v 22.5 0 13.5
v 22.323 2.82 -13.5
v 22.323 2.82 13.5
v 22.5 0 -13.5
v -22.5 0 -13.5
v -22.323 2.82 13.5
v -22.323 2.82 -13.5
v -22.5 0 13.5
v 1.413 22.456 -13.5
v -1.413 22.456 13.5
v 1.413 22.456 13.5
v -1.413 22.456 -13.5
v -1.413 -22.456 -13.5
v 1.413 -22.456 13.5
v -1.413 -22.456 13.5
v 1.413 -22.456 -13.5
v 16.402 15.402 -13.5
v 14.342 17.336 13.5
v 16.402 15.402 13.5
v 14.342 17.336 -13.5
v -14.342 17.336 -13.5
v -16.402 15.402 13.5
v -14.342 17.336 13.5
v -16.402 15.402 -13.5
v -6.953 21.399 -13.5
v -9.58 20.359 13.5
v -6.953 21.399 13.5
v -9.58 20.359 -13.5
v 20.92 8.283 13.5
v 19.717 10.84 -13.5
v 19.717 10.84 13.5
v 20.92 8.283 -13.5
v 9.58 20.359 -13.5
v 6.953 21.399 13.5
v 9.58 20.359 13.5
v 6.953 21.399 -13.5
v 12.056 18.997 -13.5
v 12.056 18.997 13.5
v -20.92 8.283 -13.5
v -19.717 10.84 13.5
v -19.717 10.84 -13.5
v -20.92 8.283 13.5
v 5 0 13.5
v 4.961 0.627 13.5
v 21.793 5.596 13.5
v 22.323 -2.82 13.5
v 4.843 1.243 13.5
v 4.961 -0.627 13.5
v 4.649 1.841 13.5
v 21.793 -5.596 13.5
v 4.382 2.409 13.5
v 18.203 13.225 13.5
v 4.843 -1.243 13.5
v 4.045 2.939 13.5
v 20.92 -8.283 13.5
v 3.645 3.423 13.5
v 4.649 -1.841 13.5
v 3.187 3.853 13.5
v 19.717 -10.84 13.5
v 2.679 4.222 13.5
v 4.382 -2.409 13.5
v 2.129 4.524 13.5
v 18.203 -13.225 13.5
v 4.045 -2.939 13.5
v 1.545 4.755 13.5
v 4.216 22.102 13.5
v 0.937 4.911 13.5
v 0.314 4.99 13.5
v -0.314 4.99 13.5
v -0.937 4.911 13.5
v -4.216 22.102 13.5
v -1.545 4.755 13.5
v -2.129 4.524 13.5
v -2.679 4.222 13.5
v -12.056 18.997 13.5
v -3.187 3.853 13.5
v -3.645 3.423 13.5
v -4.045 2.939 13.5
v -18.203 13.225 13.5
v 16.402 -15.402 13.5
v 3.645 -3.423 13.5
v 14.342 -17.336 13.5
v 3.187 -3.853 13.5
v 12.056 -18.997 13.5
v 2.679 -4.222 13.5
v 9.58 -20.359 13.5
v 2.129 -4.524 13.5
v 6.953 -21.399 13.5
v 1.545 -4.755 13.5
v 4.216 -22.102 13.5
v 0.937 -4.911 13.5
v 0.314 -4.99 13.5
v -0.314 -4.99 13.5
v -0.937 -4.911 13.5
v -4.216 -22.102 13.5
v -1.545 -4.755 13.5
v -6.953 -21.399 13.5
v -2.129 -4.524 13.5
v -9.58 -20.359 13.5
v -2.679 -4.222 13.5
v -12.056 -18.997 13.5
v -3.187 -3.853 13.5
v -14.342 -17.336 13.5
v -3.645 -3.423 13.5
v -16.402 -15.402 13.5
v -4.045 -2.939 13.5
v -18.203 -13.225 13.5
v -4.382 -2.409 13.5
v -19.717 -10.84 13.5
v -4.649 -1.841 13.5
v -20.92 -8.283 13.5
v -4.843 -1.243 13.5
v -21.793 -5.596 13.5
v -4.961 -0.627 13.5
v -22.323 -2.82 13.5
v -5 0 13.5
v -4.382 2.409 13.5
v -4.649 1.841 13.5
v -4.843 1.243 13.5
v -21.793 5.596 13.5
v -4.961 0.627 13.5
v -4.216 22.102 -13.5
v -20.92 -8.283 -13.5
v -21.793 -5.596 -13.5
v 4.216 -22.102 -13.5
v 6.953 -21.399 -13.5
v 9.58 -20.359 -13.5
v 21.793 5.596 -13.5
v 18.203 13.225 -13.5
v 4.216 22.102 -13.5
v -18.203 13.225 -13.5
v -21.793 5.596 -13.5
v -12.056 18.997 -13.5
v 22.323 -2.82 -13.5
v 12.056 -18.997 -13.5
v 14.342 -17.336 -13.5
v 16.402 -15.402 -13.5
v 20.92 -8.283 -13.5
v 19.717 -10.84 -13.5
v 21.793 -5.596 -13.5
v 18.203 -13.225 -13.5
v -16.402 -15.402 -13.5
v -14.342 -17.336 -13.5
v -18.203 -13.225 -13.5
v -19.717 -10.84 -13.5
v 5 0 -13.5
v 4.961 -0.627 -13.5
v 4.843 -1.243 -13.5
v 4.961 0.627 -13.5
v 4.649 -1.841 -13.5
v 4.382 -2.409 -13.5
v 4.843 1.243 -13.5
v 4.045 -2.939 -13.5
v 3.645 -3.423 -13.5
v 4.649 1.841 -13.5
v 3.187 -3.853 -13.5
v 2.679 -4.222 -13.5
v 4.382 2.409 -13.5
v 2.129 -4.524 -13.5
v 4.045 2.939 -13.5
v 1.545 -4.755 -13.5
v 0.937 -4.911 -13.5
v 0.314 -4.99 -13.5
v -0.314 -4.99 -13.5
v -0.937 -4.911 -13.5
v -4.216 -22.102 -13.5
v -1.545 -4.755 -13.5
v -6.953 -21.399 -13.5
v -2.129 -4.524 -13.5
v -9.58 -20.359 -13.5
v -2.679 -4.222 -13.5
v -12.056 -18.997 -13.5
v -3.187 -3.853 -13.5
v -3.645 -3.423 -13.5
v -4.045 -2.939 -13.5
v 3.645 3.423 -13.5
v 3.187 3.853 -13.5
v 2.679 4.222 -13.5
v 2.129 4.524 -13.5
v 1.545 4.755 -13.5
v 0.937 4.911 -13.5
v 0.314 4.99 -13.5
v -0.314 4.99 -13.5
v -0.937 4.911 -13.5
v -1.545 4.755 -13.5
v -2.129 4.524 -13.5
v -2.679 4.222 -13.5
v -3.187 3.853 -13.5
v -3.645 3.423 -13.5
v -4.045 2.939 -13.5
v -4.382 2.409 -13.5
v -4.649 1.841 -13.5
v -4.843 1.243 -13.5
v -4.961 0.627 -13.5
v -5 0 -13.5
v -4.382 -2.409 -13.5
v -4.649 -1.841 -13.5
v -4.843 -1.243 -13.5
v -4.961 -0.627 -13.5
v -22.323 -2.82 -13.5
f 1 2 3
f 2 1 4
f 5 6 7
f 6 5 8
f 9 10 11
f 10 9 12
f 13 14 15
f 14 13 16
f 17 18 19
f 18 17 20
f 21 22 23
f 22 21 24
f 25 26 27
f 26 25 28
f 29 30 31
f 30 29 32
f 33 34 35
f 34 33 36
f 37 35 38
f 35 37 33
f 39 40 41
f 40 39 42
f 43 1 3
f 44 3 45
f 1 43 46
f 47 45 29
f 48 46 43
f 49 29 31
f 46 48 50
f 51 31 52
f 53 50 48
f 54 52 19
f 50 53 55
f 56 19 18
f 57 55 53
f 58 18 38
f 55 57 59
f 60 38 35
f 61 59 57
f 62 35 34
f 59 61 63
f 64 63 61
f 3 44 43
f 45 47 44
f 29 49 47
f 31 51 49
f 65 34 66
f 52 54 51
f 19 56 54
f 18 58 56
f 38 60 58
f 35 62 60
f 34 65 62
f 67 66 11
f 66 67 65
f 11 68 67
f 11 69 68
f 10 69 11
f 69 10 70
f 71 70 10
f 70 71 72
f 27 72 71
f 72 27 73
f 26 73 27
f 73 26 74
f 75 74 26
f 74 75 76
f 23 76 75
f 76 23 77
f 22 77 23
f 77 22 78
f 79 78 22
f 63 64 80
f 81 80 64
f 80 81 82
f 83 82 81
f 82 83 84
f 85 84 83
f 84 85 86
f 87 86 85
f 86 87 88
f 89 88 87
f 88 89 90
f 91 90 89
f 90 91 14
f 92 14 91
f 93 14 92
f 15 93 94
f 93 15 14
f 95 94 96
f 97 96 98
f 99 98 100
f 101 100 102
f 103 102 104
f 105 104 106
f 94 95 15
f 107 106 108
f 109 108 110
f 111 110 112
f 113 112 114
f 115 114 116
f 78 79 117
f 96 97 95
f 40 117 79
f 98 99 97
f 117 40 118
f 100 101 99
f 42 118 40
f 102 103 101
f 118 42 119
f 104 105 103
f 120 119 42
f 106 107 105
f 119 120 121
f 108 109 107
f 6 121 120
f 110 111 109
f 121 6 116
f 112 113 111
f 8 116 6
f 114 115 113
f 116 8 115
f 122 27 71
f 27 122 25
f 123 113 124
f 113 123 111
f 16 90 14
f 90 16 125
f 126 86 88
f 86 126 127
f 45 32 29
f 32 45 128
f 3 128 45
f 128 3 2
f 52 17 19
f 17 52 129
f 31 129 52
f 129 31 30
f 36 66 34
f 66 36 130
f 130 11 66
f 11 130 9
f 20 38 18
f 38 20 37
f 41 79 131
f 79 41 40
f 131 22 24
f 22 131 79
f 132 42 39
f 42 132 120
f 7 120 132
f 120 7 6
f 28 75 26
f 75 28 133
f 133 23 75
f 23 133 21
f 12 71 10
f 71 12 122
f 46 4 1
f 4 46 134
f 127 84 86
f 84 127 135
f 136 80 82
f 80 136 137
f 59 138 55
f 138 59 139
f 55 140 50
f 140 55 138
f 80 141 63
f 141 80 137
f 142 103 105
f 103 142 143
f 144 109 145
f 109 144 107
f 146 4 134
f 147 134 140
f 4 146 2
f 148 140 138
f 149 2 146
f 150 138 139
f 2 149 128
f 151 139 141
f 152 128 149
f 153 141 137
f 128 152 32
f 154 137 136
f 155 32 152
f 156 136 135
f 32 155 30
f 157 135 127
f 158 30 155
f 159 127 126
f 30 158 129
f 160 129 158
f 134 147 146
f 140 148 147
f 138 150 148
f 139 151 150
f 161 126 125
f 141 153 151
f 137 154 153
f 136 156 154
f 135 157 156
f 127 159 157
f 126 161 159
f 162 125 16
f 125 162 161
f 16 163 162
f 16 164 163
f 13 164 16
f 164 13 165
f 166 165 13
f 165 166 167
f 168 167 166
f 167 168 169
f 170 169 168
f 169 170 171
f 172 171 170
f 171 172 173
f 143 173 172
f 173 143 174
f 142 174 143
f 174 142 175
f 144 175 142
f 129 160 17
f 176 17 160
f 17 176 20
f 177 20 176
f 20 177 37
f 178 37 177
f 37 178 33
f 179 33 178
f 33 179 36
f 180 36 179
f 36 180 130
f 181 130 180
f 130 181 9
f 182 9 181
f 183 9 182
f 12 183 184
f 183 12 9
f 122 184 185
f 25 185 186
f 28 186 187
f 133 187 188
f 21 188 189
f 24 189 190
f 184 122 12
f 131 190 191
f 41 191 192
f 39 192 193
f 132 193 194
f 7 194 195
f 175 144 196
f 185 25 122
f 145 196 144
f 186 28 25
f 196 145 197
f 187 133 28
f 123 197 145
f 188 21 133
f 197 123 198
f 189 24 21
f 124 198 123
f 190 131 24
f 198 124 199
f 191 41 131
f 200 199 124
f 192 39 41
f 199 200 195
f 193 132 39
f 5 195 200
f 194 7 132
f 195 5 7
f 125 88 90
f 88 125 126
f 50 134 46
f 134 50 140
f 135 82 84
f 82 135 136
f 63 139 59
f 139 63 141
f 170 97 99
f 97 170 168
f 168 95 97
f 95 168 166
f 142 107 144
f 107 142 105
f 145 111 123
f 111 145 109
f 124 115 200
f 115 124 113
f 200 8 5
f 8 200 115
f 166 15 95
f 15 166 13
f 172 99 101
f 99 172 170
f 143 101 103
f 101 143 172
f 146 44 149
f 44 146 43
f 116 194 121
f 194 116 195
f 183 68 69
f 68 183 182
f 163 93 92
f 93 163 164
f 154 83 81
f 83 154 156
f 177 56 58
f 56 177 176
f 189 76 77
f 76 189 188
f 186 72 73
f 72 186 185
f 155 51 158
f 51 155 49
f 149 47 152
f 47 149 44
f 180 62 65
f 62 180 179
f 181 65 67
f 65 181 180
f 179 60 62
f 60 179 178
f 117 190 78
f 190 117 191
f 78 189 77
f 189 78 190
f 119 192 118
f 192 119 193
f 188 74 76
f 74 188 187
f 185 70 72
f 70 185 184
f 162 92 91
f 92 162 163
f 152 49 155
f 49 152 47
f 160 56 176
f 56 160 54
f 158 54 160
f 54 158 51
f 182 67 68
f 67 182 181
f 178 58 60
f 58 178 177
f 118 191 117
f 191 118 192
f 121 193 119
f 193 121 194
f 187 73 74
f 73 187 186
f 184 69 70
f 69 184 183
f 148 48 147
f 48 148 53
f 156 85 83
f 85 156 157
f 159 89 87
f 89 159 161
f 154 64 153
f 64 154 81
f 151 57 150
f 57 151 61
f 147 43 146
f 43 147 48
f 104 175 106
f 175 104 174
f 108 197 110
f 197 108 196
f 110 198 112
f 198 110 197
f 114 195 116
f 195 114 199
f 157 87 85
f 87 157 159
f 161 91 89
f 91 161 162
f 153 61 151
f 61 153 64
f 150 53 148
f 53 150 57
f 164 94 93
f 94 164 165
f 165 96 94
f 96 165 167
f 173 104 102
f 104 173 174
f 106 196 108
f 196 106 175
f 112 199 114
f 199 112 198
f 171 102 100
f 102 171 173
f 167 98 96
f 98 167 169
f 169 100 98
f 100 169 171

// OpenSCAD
$fn = 50;


difference() {
	union() {
		translate(v = [0, 0, -13.5000000000]) {
			cylinder(h = 27, r = 22.5000000000);
		}
	}
	union() {
		translate(v = [0, 0, -100.0000000000]) {
			cylinder(h = 200, r = 5);
		}
	}
}
